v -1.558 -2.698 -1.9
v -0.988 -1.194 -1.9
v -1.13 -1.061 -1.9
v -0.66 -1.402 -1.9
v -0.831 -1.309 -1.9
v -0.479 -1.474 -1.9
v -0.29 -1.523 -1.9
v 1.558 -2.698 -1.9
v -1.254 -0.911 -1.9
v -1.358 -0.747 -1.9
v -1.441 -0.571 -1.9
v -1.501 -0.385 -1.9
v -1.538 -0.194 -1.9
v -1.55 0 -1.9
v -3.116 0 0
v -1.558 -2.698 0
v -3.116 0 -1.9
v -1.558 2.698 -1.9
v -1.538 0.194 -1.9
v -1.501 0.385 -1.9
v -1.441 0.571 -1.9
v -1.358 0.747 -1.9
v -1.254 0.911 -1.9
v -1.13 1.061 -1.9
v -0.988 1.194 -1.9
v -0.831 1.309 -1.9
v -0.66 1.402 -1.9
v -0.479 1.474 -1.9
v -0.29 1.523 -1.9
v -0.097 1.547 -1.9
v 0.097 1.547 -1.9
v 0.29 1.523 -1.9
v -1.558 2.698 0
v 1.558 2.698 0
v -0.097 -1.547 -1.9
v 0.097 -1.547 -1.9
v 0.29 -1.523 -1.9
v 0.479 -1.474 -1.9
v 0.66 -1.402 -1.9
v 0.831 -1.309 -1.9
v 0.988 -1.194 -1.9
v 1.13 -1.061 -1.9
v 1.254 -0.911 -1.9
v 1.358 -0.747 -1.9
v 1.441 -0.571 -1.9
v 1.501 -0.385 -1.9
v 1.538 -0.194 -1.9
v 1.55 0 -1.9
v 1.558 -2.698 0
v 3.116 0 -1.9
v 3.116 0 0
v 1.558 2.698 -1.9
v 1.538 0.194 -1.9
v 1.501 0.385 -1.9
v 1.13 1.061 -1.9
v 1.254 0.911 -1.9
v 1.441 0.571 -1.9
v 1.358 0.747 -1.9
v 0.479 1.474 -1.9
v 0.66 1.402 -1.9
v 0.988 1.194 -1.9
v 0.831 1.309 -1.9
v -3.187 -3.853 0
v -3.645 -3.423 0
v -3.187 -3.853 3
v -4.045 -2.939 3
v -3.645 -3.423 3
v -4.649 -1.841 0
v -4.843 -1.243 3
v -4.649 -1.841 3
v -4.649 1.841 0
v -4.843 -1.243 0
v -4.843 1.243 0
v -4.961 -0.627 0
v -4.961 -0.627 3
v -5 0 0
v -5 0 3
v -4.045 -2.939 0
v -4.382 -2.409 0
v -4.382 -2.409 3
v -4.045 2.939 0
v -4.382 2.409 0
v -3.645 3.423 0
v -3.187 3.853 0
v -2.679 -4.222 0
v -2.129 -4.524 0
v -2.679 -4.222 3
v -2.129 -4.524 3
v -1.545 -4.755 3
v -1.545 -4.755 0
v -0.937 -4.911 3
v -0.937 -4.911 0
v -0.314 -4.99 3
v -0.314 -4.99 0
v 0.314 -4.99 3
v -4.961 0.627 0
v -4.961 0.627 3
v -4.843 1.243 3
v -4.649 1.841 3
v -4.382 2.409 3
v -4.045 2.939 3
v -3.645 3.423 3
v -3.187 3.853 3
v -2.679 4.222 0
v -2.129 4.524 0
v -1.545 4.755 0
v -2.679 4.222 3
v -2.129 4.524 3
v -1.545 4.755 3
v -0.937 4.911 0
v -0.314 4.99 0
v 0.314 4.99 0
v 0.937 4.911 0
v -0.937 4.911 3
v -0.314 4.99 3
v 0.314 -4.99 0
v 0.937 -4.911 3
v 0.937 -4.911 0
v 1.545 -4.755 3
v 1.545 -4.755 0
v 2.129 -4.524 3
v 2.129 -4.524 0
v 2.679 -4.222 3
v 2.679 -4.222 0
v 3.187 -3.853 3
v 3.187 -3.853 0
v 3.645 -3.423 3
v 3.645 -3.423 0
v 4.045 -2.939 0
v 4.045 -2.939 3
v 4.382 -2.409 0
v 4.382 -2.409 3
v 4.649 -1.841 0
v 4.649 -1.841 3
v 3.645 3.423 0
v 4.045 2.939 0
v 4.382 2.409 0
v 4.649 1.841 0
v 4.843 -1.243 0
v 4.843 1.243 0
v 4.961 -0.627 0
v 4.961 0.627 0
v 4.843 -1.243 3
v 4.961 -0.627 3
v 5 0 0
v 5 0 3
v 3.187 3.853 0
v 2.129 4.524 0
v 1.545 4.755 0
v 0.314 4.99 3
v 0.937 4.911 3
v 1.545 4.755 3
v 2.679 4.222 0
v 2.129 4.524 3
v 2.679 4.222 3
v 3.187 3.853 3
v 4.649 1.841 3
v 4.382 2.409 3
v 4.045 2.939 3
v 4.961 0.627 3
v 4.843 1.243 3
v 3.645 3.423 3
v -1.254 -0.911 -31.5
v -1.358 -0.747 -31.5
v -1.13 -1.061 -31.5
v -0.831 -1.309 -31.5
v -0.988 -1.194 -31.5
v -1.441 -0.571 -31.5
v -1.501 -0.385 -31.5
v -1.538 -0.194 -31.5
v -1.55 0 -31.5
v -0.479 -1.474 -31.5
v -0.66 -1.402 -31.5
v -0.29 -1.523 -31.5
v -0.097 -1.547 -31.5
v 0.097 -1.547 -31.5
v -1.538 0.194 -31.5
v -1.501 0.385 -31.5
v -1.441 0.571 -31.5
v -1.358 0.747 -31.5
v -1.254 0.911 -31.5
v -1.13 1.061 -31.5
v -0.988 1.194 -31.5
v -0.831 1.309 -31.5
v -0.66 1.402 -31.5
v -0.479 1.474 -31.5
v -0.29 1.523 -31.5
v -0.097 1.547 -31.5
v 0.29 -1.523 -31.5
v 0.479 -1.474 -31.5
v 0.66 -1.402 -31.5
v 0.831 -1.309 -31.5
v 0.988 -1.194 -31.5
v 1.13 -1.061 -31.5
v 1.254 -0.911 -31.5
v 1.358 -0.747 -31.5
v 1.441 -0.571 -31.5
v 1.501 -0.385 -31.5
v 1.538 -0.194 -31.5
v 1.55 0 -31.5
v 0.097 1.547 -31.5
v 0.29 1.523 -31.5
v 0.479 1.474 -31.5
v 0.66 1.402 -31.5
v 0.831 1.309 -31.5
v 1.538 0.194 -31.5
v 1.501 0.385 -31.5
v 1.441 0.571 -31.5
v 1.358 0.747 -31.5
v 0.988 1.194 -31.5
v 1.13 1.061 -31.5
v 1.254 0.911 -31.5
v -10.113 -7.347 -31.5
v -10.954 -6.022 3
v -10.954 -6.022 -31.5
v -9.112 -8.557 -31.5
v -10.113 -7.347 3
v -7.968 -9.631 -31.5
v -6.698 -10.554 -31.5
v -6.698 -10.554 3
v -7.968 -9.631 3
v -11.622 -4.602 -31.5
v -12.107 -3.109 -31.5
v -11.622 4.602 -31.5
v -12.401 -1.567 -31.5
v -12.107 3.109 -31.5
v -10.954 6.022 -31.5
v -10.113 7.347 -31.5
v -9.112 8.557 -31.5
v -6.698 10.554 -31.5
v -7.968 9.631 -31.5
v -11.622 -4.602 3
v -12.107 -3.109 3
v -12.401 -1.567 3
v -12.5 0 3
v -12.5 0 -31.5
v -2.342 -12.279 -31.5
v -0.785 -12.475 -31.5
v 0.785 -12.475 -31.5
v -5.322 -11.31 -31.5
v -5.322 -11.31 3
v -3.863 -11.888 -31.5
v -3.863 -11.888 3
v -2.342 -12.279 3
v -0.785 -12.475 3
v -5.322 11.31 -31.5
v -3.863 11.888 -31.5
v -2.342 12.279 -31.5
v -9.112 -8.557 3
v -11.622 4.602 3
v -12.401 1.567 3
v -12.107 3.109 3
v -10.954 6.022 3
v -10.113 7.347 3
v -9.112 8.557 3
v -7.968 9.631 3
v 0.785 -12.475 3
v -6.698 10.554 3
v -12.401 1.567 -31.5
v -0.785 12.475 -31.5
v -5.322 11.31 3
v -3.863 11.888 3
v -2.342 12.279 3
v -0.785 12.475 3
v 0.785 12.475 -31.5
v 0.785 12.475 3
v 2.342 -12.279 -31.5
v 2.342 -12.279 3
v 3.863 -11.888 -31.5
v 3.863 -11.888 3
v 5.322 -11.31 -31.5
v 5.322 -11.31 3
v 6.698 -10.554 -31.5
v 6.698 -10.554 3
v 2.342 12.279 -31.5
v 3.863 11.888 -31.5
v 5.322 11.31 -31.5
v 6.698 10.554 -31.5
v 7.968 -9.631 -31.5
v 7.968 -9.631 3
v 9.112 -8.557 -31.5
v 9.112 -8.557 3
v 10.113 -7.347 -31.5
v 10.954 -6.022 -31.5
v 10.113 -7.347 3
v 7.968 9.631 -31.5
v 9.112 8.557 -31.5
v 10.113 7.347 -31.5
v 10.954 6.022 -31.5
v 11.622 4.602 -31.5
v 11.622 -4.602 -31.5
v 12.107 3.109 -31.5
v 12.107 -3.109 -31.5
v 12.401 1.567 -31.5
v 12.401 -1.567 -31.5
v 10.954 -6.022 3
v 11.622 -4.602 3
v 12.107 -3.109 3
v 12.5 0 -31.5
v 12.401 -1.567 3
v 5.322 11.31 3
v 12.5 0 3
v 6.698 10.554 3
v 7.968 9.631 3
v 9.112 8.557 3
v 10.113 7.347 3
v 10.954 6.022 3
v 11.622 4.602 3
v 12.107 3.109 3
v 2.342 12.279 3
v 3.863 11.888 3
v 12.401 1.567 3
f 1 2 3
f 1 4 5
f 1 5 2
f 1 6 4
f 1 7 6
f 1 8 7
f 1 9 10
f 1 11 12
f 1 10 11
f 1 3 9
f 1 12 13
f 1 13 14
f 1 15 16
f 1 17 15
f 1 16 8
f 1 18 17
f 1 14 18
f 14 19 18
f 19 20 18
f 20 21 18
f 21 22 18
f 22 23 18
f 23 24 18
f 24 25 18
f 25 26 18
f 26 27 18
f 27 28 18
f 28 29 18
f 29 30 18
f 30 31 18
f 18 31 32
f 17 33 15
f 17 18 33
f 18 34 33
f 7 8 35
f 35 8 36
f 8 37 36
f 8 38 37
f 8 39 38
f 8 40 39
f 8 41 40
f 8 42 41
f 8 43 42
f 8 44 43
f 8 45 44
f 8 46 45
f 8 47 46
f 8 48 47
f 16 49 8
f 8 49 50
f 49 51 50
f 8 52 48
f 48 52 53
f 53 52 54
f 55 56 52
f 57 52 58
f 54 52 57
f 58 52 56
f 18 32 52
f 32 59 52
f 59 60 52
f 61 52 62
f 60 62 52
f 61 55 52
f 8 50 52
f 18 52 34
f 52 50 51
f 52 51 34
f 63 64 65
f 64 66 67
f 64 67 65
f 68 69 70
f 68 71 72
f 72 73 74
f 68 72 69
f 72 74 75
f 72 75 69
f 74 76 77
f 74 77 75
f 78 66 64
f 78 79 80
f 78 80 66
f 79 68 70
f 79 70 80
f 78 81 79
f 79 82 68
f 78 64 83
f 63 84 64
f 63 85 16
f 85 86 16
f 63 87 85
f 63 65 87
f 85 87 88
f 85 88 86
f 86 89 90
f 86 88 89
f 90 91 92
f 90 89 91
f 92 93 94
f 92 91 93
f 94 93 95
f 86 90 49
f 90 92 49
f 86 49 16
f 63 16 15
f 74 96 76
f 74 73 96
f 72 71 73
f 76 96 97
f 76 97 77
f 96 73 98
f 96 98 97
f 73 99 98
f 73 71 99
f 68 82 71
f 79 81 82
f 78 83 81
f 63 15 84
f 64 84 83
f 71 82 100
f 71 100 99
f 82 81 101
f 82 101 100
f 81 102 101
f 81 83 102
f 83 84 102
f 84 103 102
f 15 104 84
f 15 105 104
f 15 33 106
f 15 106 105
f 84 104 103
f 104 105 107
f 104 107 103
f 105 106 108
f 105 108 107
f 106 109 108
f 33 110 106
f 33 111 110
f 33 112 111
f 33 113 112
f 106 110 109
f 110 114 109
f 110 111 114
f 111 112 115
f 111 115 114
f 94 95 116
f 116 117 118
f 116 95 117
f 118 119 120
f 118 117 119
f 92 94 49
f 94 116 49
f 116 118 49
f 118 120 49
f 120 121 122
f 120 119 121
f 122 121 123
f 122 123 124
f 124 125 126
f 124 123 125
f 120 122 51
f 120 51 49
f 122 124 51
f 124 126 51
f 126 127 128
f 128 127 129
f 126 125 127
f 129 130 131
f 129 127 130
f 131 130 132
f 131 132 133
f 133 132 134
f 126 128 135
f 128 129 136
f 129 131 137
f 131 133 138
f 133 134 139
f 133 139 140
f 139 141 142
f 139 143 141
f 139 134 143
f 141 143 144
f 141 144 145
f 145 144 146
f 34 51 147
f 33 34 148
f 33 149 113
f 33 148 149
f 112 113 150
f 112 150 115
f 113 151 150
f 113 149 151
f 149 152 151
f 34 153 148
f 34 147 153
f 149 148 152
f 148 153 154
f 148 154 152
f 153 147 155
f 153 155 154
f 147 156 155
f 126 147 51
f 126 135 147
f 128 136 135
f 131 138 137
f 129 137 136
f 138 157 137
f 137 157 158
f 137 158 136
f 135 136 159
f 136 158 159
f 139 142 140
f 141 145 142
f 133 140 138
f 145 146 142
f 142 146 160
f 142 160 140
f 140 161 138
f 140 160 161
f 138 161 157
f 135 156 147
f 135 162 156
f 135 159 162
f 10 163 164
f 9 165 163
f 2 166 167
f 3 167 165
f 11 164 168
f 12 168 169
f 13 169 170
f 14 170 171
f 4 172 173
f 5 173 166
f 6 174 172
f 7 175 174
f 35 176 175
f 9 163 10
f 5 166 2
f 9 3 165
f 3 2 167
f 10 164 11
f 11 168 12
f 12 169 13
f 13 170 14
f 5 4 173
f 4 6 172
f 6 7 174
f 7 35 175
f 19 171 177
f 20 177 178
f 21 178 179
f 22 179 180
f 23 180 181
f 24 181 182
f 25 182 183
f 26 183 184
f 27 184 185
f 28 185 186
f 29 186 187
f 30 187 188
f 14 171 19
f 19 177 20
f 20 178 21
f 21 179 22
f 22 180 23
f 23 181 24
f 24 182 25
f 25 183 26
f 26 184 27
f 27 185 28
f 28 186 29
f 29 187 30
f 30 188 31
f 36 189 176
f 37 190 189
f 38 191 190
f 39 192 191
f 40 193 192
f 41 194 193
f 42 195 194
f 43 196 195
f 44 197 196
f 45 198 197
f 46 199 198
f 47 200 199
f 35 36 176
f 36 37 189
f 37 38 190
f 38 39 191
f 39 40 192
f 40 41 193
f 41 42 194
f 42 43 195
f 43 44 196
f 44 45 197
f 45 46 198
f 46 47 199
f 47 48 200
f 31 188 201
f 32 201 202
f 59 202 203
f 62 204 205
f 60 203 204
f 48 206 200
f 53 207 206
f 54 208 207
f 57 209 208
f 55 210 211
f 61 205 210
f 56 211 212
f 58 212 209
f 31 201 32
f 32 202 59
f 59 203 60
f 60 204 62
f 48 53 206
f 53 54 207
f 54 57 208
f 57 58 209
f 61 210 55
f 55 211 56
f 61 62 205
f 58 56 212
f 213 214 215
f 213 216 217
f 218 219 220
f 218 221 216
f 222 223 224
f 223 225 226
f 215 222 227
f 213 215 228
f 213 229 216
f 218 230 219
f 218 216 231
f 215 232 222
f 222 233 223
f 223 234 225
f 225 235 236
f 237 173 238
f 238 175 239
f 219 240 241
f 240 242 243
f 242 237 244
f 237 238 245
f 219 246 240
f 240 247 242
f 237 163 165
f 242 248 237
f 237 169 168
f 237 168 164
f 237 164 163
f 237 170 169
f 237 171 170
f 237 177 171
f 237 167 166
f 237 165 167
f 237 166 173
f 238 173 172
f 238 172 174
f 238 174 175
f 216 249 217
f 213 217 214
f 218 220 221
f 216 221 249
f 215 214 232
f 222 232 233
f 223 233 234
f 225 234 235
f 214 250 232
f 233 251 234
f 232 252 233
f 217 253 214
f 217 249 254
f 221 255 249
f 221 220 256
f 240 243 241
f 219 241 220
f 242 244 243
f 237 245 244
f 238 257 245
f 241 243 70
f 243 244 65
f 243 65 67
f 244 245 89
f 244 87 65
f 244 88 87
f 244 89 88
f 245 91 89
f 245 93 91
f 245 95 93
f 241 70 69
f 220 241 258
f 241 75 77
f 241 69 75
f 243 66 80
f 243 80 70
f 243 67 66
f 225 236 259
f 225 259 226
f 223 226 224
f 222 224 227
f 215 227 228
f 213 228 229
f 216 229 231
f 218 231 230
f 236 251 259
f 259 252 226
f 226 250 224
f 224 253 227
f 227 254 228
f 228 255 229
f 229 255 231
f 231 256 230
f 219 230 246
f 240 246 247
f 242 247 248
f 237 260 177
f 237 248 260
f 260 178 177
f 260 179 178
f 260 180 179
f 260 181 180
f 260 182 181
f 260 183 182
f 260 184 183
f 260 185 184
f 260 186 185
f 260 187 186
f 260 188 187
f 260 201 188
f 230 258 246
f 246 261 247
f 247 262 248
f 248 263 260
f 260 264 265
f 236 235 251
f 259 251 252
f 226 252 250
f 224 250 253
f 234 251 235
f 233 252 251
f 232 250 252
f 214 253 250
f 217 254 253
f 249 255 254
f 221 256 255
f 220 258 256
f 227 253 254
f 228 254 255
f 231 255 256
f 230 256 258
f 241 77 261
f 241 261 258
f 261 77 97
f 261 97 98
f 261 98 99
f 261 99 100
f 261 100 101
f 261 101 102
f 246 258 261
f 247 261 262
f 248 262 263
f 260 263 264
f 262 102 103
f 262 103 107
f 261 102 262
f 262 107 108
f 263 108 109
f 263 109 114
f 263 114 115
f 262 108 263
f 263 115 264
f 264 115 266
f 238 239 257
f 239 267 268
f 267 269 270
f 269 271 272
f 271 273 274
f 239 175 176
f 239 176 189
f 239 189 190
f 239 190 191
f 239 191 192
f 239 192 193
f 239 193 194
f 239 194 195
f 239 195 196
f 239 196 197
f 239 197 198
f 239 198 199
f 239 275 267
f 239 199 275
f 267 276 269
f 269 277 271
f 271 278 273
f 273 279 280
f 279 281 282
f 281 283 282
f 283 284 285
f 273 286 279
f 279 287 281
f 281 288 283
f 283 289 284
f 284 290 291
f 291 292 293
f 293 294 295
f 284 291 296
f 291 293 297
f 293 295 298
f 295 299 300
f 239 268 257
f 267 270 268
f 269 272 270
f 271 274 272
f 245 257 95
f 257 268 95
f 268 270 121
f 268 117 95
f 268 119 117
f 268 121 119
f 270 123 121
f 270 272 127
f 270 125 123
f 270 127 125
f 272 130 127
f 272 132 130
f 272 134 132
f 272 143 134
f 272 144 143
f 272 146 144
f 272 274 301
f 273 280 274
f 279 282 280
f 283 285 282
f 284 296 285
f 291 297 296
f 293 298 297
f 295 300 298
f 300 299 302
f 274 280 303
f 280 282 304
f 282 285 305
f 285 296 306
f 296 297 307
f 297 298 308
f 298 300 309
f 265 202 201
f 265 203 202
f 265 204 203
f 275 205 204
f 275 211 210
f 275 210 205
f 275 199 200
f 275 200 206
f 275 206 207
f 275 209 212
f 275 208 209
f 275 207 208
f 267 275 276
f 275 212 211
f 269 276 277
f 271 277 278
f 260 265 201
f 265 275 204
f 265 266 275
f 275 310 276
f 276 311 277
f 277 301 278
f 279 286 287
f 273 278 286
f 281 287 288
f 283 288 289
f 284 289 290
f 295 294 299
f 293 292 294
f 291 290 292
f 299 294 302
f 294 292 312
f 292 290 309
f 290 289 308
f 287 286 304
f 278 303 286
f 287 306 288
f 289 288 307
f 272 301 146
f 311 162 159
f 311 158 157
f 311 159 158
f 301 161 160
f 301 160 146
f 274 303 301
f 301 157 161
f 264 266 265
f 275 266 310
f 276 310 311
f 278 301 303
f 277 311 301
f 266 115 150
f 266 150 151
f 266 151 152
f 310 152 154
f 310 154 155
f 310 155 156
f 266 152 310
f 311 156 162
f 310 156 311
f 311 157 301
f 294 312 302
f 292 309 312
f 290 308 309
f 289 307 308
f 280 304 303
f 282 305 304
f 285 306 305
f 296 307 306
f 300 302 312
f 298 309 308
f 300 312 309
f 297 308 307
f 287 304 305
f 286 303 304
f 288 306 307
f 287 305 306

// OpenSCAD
$fn = 50;

difference() {
	union() {
		translate(v = [0, 0, -31.5]) {
			cylinder(h = 34.5, r = 12.5);
		}
	}
	union() {
		translate(v = [0, 0, 0]) {
			rotate(a = [0, 0, 0]) {
				difference() {
					union() {
						translate(v = [0, 0, -1.9]) {
							linear_extrude(height = 1.9) {
								polygon(points = [[3.1158, 0.0], [1.5579000000000005, 2.698361953111554], [-1.5578999999999994, 2.6983619531115544], [-3.1158, 3.815754496783323e-16], [-1.5579000000000014, -2.6983619531115535], [1.557899999999998, -2.6983619531115552]]);
							}
						}
					}
					union();
				}
			}
		}
		#cylinder(h = 3, r = 5.0);
		#translate(v = [0, 0, -100.0]) {
			cylinder(h = 200, r = 1.55);
		}
	}
}
